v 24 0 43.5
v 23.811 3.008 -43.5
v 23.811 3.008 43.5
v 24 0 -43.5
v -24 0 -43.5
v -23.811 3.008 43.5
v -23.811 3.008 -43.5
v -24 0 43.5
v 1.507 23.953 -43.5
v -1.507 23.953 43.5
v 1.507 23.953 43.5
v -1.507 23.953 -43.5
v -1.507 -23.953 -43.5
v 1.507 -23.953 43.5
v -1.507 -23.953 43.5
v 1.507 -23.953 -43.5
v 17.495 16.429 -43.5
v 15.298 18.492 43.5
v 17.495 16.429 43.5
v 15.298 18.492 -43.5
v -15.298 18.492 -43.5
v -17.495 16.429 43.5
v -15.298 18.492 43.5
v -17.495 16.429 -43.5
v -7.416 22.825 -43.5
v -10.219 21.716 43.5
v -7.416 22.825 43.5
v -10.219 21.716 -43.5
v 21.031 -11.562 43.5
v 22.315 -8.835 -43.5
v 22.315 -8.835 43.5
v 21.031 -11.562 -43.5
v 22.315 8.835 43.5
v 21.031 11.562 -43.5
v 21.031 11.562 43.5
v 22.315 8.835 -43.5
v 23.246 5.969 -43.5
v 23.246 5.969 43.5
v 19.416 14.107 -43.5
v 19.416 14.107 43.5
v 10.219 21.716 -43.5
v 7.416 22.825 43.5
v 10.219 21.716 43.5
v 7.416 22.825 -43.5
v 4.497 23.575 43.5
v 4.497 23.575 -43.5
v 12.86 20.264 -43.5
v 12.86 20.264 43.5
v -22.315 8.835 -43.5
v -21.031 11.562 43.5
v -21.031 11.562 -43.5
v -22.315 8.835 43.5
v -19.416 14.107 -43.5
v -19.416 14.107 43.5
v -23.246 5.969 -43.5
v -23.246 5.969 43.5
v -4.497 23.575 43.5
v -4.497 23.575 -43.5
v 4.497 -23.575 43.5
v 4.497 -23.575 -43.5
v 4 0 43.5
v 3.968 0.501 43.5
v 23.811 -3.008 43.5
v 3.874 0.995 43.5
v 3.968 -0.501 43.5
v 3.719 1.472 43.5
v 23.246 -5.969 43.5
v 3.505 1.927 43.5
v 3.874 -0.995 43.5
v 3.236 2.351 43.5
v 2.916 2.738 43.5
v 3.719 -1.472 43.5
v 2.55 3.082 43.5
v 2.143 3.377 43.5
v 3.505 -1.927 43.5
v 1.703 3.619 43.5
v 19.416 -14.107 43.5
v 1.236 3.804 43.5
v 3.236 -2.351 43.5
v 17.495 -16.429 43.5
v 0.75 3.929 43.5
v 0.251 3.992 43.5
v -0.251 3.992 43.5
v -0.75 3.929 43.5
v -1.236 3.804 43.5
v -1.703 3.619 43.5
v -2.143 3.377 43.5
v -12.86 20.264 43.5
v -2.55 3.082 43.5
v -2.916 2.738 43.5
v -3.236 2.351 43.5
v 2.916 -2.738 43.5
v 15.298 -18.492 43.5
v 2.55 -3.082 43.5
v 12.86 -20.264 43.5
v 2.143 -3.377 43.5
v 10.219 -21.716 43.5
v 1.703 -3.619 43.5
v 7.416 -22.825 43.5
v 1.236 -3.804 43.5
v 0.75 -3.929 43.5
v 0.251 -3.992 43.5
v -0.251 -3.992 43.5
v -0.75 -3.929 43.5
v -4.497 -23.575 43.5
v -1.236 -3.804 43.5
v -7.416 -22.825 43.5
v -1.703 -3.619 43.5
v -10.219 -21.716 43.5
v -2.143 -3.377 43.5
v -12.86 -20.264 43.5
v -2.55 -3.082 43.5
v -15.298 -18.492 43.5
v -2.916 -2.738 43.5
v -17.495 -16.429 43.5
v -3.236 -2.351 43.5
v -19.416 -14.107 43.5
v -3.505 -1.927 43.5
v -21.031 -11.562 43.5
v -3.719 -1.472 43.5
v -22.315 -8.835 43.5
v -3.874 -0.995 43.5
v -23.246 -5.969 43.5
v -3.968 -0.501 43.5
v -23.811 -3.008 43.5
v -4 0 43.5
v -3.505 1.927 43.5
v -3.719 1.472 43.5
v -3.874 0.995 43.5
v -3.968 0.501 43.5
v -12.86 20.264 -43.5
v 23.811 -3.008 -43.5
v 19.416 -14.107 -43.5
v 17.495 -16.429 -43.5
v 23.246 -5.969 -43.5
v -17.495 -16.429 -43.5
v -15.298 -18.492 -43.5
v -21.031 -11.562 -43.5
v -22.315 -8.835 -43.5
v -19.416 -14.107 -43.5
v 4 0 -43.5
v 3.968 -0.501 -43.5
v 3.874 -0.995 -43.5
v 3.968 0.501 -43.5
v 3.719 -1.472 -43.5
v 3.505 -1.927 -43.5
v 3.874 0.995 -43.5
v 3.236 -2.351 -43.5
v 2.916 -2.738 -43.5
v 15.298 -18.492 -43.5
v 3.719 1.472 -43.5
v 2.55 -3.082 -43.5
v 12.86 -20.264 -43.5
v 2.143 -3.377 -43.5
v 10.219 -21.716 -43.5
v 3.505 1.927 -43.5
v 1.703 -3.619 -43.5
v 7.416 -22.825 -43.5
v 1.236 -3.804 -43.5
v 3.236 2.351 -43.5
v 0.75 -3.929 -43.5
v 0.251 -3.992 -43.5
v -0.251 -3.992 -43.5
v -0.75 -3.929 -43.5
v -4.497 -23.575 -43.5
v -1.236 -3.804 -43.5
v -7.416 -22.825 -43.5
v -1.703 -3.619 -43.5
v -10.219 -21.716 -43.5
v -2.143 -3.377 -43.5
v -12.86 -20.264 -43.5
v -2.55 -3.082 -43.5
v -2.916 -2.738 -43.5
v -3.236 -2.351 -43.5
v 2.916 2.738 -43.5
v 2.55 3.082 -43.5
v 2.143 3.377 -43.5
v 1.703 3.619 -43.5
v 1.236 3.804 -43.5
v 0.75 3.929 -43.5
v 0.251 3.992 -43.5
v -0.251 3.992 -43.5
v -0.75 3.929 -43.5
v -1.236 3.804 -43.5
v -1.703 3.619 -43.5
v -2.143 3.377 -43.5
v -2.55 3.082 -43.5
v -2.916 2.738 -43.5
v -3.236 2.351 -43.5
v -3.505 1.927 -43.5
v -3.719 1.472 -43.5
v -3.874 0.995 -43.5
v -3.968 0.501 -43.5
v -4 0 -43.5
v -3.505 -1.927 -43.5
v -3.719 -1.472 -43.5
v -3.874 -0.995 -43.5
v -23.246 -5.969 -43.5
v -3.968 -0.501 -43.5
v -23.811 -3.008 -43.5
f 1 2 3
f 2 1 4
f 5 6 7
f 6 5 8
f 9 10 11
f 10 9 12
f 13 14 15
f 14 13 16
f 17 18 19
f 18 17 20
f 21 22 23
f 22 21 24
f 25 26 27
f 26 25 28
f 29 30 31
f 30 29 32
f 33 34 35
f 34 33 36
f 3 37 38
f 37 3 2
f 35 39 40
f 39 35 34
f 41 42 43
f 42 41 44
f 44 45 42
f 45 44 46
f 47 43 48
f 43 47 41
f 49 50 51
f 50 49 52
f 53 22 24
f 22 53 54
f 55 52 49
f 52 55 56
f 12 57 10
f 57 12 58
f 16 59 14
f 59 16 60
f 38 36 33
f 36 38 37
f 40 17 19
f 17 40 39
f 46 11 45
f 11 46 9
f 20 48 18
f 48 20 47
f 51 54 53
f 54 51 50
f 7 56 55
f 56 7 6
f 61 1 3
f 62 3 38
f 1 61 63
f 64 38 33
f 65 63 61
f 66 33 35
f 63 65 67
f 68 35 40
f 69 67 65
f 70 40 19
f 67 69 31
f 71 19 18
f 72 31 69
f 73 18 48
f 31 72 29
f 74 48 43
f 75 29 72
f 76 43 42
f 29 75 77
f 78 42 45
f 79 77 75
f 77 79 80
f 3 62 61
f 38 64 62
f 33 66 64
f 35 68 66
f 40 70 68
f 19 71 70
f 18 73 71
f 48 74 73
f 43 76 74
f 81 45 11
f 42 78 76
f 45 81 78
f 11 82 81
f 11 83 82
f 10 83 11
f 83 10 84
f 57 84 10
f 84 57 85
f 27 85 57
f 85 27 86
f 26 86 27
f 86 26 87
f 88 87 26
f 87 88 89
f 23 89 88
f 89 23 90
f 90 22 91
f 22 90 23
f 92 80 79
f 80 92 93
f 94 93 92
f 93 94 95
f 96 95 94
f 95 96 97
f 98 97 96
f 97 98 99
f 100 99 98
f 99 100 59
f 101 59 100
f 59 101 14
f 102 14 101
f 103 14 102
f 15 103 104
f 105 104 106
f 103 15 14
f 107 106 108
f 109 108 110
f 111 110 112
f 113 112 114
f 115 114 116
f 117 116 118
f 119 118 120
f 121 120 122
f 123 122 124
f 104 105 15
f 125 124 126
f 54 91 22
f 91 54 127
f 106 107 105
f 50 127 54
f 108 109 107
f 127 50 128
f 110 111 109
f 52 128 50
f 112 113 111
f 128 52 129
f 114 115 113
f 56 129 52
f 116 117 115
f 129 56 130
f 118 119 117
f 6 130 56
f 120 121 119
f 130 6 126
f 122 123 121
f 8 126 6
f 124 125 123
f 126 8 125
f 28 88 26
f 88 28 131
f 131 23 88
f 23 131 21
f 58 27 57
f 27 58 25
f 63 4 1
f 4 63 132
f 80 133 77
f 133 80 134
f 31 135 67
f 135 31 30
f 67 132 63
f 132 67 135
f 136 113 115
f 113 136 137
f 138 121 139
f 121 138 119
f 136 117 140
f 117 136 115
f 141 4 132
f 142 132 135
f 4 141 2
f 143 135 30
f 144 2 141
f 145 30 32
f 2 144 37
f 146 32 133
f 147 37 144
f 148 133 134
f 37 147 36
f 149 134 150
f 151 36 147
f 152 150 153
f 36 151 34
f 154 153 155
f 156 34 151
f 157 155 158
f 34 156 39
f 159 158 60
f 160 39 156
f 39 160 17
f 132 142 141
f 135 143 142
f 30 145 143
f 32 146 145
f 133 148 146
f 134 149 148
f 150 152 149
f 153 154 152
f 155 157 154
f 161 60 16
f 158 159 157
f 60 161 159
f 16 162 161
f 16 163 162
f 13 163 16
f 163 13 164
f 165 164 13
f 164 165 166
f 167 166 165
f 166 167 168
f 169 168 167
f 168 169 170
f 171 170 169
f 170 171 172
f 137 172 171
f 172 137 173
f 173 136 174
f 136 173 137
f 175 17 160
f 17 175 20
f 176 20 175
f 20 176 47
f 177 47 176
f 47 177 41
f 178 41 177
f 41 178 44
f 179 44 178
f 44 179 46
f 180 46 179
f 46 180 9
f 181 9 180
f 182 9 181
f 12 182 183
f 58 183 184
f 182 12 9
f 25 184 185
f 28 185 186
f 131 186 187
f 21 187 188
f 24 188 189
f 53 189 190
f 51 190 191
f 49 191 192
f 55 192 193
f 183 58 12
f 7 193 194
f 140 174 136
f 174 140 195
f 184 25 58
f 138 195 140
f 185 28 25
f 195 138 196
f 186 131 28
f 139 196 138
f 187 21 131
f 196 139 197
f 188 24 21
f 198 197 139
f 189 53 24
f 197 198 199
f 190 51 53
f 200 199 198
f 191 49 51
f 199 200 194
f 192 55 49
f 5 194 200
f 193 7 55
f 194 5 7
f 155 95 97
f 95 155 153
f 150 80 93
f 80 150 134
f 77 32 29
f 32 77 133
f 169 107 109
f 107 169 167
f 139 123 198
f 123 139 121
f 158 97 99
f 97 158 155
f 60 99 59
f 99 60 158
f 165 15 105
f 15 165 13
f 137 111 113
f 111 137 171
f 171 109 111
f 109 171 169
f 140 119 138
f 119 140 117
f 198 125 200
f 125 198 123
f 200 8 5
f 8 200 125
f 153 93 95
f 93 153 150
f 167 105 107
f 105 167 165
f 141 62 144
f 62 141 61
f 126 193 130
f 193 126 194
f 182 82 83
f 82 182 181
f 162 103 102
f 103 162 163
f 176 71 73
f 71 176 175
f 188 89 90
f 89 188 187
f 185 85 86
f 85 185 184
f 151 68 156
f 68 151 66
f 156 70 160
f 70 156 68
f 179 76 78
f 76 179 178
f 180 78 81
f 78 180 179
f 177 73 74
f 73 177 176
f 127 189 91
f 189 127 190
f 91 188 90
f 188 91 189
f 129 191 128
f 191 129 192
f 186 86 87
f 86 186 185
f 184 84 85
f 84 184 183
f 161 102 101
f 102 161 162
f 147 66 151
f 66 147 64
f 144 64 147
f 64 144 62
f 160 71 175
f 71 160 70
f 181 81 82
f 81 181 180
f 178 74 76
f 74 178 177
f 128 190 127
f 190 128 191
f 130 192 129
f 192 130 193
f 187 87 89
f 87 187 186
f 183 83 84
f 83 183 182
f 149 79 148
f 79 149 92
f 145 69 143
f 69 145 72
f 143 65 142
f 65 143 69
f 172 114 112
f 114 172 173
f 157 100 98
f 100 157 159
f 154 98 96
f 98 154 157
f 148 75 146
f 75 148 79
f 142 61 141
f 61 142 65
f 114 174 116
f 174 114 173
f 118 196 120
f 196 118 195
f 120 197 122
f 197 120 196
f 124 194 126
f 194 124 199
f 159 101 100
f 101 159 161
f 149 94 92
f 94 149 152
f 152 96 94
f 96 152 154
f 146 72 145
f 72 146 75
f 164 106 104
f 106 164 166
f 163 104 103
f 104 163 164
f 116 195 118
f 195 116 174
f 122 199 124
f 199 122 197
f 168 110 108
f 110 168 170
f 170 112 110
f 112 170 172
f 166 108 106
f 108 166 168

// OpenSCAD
$fn = 50;


difference() {
	union() {
		translate(v = [0, 0, -43.5000000000]) {
			cylinder(h = 87, r = 24.0000000000);
		}
	}
	union() {
		translate(v = [0, 0, -100.0000000000]) {
			cylinder(h = 200, r = 4.0000000000);
		}
	}
}
